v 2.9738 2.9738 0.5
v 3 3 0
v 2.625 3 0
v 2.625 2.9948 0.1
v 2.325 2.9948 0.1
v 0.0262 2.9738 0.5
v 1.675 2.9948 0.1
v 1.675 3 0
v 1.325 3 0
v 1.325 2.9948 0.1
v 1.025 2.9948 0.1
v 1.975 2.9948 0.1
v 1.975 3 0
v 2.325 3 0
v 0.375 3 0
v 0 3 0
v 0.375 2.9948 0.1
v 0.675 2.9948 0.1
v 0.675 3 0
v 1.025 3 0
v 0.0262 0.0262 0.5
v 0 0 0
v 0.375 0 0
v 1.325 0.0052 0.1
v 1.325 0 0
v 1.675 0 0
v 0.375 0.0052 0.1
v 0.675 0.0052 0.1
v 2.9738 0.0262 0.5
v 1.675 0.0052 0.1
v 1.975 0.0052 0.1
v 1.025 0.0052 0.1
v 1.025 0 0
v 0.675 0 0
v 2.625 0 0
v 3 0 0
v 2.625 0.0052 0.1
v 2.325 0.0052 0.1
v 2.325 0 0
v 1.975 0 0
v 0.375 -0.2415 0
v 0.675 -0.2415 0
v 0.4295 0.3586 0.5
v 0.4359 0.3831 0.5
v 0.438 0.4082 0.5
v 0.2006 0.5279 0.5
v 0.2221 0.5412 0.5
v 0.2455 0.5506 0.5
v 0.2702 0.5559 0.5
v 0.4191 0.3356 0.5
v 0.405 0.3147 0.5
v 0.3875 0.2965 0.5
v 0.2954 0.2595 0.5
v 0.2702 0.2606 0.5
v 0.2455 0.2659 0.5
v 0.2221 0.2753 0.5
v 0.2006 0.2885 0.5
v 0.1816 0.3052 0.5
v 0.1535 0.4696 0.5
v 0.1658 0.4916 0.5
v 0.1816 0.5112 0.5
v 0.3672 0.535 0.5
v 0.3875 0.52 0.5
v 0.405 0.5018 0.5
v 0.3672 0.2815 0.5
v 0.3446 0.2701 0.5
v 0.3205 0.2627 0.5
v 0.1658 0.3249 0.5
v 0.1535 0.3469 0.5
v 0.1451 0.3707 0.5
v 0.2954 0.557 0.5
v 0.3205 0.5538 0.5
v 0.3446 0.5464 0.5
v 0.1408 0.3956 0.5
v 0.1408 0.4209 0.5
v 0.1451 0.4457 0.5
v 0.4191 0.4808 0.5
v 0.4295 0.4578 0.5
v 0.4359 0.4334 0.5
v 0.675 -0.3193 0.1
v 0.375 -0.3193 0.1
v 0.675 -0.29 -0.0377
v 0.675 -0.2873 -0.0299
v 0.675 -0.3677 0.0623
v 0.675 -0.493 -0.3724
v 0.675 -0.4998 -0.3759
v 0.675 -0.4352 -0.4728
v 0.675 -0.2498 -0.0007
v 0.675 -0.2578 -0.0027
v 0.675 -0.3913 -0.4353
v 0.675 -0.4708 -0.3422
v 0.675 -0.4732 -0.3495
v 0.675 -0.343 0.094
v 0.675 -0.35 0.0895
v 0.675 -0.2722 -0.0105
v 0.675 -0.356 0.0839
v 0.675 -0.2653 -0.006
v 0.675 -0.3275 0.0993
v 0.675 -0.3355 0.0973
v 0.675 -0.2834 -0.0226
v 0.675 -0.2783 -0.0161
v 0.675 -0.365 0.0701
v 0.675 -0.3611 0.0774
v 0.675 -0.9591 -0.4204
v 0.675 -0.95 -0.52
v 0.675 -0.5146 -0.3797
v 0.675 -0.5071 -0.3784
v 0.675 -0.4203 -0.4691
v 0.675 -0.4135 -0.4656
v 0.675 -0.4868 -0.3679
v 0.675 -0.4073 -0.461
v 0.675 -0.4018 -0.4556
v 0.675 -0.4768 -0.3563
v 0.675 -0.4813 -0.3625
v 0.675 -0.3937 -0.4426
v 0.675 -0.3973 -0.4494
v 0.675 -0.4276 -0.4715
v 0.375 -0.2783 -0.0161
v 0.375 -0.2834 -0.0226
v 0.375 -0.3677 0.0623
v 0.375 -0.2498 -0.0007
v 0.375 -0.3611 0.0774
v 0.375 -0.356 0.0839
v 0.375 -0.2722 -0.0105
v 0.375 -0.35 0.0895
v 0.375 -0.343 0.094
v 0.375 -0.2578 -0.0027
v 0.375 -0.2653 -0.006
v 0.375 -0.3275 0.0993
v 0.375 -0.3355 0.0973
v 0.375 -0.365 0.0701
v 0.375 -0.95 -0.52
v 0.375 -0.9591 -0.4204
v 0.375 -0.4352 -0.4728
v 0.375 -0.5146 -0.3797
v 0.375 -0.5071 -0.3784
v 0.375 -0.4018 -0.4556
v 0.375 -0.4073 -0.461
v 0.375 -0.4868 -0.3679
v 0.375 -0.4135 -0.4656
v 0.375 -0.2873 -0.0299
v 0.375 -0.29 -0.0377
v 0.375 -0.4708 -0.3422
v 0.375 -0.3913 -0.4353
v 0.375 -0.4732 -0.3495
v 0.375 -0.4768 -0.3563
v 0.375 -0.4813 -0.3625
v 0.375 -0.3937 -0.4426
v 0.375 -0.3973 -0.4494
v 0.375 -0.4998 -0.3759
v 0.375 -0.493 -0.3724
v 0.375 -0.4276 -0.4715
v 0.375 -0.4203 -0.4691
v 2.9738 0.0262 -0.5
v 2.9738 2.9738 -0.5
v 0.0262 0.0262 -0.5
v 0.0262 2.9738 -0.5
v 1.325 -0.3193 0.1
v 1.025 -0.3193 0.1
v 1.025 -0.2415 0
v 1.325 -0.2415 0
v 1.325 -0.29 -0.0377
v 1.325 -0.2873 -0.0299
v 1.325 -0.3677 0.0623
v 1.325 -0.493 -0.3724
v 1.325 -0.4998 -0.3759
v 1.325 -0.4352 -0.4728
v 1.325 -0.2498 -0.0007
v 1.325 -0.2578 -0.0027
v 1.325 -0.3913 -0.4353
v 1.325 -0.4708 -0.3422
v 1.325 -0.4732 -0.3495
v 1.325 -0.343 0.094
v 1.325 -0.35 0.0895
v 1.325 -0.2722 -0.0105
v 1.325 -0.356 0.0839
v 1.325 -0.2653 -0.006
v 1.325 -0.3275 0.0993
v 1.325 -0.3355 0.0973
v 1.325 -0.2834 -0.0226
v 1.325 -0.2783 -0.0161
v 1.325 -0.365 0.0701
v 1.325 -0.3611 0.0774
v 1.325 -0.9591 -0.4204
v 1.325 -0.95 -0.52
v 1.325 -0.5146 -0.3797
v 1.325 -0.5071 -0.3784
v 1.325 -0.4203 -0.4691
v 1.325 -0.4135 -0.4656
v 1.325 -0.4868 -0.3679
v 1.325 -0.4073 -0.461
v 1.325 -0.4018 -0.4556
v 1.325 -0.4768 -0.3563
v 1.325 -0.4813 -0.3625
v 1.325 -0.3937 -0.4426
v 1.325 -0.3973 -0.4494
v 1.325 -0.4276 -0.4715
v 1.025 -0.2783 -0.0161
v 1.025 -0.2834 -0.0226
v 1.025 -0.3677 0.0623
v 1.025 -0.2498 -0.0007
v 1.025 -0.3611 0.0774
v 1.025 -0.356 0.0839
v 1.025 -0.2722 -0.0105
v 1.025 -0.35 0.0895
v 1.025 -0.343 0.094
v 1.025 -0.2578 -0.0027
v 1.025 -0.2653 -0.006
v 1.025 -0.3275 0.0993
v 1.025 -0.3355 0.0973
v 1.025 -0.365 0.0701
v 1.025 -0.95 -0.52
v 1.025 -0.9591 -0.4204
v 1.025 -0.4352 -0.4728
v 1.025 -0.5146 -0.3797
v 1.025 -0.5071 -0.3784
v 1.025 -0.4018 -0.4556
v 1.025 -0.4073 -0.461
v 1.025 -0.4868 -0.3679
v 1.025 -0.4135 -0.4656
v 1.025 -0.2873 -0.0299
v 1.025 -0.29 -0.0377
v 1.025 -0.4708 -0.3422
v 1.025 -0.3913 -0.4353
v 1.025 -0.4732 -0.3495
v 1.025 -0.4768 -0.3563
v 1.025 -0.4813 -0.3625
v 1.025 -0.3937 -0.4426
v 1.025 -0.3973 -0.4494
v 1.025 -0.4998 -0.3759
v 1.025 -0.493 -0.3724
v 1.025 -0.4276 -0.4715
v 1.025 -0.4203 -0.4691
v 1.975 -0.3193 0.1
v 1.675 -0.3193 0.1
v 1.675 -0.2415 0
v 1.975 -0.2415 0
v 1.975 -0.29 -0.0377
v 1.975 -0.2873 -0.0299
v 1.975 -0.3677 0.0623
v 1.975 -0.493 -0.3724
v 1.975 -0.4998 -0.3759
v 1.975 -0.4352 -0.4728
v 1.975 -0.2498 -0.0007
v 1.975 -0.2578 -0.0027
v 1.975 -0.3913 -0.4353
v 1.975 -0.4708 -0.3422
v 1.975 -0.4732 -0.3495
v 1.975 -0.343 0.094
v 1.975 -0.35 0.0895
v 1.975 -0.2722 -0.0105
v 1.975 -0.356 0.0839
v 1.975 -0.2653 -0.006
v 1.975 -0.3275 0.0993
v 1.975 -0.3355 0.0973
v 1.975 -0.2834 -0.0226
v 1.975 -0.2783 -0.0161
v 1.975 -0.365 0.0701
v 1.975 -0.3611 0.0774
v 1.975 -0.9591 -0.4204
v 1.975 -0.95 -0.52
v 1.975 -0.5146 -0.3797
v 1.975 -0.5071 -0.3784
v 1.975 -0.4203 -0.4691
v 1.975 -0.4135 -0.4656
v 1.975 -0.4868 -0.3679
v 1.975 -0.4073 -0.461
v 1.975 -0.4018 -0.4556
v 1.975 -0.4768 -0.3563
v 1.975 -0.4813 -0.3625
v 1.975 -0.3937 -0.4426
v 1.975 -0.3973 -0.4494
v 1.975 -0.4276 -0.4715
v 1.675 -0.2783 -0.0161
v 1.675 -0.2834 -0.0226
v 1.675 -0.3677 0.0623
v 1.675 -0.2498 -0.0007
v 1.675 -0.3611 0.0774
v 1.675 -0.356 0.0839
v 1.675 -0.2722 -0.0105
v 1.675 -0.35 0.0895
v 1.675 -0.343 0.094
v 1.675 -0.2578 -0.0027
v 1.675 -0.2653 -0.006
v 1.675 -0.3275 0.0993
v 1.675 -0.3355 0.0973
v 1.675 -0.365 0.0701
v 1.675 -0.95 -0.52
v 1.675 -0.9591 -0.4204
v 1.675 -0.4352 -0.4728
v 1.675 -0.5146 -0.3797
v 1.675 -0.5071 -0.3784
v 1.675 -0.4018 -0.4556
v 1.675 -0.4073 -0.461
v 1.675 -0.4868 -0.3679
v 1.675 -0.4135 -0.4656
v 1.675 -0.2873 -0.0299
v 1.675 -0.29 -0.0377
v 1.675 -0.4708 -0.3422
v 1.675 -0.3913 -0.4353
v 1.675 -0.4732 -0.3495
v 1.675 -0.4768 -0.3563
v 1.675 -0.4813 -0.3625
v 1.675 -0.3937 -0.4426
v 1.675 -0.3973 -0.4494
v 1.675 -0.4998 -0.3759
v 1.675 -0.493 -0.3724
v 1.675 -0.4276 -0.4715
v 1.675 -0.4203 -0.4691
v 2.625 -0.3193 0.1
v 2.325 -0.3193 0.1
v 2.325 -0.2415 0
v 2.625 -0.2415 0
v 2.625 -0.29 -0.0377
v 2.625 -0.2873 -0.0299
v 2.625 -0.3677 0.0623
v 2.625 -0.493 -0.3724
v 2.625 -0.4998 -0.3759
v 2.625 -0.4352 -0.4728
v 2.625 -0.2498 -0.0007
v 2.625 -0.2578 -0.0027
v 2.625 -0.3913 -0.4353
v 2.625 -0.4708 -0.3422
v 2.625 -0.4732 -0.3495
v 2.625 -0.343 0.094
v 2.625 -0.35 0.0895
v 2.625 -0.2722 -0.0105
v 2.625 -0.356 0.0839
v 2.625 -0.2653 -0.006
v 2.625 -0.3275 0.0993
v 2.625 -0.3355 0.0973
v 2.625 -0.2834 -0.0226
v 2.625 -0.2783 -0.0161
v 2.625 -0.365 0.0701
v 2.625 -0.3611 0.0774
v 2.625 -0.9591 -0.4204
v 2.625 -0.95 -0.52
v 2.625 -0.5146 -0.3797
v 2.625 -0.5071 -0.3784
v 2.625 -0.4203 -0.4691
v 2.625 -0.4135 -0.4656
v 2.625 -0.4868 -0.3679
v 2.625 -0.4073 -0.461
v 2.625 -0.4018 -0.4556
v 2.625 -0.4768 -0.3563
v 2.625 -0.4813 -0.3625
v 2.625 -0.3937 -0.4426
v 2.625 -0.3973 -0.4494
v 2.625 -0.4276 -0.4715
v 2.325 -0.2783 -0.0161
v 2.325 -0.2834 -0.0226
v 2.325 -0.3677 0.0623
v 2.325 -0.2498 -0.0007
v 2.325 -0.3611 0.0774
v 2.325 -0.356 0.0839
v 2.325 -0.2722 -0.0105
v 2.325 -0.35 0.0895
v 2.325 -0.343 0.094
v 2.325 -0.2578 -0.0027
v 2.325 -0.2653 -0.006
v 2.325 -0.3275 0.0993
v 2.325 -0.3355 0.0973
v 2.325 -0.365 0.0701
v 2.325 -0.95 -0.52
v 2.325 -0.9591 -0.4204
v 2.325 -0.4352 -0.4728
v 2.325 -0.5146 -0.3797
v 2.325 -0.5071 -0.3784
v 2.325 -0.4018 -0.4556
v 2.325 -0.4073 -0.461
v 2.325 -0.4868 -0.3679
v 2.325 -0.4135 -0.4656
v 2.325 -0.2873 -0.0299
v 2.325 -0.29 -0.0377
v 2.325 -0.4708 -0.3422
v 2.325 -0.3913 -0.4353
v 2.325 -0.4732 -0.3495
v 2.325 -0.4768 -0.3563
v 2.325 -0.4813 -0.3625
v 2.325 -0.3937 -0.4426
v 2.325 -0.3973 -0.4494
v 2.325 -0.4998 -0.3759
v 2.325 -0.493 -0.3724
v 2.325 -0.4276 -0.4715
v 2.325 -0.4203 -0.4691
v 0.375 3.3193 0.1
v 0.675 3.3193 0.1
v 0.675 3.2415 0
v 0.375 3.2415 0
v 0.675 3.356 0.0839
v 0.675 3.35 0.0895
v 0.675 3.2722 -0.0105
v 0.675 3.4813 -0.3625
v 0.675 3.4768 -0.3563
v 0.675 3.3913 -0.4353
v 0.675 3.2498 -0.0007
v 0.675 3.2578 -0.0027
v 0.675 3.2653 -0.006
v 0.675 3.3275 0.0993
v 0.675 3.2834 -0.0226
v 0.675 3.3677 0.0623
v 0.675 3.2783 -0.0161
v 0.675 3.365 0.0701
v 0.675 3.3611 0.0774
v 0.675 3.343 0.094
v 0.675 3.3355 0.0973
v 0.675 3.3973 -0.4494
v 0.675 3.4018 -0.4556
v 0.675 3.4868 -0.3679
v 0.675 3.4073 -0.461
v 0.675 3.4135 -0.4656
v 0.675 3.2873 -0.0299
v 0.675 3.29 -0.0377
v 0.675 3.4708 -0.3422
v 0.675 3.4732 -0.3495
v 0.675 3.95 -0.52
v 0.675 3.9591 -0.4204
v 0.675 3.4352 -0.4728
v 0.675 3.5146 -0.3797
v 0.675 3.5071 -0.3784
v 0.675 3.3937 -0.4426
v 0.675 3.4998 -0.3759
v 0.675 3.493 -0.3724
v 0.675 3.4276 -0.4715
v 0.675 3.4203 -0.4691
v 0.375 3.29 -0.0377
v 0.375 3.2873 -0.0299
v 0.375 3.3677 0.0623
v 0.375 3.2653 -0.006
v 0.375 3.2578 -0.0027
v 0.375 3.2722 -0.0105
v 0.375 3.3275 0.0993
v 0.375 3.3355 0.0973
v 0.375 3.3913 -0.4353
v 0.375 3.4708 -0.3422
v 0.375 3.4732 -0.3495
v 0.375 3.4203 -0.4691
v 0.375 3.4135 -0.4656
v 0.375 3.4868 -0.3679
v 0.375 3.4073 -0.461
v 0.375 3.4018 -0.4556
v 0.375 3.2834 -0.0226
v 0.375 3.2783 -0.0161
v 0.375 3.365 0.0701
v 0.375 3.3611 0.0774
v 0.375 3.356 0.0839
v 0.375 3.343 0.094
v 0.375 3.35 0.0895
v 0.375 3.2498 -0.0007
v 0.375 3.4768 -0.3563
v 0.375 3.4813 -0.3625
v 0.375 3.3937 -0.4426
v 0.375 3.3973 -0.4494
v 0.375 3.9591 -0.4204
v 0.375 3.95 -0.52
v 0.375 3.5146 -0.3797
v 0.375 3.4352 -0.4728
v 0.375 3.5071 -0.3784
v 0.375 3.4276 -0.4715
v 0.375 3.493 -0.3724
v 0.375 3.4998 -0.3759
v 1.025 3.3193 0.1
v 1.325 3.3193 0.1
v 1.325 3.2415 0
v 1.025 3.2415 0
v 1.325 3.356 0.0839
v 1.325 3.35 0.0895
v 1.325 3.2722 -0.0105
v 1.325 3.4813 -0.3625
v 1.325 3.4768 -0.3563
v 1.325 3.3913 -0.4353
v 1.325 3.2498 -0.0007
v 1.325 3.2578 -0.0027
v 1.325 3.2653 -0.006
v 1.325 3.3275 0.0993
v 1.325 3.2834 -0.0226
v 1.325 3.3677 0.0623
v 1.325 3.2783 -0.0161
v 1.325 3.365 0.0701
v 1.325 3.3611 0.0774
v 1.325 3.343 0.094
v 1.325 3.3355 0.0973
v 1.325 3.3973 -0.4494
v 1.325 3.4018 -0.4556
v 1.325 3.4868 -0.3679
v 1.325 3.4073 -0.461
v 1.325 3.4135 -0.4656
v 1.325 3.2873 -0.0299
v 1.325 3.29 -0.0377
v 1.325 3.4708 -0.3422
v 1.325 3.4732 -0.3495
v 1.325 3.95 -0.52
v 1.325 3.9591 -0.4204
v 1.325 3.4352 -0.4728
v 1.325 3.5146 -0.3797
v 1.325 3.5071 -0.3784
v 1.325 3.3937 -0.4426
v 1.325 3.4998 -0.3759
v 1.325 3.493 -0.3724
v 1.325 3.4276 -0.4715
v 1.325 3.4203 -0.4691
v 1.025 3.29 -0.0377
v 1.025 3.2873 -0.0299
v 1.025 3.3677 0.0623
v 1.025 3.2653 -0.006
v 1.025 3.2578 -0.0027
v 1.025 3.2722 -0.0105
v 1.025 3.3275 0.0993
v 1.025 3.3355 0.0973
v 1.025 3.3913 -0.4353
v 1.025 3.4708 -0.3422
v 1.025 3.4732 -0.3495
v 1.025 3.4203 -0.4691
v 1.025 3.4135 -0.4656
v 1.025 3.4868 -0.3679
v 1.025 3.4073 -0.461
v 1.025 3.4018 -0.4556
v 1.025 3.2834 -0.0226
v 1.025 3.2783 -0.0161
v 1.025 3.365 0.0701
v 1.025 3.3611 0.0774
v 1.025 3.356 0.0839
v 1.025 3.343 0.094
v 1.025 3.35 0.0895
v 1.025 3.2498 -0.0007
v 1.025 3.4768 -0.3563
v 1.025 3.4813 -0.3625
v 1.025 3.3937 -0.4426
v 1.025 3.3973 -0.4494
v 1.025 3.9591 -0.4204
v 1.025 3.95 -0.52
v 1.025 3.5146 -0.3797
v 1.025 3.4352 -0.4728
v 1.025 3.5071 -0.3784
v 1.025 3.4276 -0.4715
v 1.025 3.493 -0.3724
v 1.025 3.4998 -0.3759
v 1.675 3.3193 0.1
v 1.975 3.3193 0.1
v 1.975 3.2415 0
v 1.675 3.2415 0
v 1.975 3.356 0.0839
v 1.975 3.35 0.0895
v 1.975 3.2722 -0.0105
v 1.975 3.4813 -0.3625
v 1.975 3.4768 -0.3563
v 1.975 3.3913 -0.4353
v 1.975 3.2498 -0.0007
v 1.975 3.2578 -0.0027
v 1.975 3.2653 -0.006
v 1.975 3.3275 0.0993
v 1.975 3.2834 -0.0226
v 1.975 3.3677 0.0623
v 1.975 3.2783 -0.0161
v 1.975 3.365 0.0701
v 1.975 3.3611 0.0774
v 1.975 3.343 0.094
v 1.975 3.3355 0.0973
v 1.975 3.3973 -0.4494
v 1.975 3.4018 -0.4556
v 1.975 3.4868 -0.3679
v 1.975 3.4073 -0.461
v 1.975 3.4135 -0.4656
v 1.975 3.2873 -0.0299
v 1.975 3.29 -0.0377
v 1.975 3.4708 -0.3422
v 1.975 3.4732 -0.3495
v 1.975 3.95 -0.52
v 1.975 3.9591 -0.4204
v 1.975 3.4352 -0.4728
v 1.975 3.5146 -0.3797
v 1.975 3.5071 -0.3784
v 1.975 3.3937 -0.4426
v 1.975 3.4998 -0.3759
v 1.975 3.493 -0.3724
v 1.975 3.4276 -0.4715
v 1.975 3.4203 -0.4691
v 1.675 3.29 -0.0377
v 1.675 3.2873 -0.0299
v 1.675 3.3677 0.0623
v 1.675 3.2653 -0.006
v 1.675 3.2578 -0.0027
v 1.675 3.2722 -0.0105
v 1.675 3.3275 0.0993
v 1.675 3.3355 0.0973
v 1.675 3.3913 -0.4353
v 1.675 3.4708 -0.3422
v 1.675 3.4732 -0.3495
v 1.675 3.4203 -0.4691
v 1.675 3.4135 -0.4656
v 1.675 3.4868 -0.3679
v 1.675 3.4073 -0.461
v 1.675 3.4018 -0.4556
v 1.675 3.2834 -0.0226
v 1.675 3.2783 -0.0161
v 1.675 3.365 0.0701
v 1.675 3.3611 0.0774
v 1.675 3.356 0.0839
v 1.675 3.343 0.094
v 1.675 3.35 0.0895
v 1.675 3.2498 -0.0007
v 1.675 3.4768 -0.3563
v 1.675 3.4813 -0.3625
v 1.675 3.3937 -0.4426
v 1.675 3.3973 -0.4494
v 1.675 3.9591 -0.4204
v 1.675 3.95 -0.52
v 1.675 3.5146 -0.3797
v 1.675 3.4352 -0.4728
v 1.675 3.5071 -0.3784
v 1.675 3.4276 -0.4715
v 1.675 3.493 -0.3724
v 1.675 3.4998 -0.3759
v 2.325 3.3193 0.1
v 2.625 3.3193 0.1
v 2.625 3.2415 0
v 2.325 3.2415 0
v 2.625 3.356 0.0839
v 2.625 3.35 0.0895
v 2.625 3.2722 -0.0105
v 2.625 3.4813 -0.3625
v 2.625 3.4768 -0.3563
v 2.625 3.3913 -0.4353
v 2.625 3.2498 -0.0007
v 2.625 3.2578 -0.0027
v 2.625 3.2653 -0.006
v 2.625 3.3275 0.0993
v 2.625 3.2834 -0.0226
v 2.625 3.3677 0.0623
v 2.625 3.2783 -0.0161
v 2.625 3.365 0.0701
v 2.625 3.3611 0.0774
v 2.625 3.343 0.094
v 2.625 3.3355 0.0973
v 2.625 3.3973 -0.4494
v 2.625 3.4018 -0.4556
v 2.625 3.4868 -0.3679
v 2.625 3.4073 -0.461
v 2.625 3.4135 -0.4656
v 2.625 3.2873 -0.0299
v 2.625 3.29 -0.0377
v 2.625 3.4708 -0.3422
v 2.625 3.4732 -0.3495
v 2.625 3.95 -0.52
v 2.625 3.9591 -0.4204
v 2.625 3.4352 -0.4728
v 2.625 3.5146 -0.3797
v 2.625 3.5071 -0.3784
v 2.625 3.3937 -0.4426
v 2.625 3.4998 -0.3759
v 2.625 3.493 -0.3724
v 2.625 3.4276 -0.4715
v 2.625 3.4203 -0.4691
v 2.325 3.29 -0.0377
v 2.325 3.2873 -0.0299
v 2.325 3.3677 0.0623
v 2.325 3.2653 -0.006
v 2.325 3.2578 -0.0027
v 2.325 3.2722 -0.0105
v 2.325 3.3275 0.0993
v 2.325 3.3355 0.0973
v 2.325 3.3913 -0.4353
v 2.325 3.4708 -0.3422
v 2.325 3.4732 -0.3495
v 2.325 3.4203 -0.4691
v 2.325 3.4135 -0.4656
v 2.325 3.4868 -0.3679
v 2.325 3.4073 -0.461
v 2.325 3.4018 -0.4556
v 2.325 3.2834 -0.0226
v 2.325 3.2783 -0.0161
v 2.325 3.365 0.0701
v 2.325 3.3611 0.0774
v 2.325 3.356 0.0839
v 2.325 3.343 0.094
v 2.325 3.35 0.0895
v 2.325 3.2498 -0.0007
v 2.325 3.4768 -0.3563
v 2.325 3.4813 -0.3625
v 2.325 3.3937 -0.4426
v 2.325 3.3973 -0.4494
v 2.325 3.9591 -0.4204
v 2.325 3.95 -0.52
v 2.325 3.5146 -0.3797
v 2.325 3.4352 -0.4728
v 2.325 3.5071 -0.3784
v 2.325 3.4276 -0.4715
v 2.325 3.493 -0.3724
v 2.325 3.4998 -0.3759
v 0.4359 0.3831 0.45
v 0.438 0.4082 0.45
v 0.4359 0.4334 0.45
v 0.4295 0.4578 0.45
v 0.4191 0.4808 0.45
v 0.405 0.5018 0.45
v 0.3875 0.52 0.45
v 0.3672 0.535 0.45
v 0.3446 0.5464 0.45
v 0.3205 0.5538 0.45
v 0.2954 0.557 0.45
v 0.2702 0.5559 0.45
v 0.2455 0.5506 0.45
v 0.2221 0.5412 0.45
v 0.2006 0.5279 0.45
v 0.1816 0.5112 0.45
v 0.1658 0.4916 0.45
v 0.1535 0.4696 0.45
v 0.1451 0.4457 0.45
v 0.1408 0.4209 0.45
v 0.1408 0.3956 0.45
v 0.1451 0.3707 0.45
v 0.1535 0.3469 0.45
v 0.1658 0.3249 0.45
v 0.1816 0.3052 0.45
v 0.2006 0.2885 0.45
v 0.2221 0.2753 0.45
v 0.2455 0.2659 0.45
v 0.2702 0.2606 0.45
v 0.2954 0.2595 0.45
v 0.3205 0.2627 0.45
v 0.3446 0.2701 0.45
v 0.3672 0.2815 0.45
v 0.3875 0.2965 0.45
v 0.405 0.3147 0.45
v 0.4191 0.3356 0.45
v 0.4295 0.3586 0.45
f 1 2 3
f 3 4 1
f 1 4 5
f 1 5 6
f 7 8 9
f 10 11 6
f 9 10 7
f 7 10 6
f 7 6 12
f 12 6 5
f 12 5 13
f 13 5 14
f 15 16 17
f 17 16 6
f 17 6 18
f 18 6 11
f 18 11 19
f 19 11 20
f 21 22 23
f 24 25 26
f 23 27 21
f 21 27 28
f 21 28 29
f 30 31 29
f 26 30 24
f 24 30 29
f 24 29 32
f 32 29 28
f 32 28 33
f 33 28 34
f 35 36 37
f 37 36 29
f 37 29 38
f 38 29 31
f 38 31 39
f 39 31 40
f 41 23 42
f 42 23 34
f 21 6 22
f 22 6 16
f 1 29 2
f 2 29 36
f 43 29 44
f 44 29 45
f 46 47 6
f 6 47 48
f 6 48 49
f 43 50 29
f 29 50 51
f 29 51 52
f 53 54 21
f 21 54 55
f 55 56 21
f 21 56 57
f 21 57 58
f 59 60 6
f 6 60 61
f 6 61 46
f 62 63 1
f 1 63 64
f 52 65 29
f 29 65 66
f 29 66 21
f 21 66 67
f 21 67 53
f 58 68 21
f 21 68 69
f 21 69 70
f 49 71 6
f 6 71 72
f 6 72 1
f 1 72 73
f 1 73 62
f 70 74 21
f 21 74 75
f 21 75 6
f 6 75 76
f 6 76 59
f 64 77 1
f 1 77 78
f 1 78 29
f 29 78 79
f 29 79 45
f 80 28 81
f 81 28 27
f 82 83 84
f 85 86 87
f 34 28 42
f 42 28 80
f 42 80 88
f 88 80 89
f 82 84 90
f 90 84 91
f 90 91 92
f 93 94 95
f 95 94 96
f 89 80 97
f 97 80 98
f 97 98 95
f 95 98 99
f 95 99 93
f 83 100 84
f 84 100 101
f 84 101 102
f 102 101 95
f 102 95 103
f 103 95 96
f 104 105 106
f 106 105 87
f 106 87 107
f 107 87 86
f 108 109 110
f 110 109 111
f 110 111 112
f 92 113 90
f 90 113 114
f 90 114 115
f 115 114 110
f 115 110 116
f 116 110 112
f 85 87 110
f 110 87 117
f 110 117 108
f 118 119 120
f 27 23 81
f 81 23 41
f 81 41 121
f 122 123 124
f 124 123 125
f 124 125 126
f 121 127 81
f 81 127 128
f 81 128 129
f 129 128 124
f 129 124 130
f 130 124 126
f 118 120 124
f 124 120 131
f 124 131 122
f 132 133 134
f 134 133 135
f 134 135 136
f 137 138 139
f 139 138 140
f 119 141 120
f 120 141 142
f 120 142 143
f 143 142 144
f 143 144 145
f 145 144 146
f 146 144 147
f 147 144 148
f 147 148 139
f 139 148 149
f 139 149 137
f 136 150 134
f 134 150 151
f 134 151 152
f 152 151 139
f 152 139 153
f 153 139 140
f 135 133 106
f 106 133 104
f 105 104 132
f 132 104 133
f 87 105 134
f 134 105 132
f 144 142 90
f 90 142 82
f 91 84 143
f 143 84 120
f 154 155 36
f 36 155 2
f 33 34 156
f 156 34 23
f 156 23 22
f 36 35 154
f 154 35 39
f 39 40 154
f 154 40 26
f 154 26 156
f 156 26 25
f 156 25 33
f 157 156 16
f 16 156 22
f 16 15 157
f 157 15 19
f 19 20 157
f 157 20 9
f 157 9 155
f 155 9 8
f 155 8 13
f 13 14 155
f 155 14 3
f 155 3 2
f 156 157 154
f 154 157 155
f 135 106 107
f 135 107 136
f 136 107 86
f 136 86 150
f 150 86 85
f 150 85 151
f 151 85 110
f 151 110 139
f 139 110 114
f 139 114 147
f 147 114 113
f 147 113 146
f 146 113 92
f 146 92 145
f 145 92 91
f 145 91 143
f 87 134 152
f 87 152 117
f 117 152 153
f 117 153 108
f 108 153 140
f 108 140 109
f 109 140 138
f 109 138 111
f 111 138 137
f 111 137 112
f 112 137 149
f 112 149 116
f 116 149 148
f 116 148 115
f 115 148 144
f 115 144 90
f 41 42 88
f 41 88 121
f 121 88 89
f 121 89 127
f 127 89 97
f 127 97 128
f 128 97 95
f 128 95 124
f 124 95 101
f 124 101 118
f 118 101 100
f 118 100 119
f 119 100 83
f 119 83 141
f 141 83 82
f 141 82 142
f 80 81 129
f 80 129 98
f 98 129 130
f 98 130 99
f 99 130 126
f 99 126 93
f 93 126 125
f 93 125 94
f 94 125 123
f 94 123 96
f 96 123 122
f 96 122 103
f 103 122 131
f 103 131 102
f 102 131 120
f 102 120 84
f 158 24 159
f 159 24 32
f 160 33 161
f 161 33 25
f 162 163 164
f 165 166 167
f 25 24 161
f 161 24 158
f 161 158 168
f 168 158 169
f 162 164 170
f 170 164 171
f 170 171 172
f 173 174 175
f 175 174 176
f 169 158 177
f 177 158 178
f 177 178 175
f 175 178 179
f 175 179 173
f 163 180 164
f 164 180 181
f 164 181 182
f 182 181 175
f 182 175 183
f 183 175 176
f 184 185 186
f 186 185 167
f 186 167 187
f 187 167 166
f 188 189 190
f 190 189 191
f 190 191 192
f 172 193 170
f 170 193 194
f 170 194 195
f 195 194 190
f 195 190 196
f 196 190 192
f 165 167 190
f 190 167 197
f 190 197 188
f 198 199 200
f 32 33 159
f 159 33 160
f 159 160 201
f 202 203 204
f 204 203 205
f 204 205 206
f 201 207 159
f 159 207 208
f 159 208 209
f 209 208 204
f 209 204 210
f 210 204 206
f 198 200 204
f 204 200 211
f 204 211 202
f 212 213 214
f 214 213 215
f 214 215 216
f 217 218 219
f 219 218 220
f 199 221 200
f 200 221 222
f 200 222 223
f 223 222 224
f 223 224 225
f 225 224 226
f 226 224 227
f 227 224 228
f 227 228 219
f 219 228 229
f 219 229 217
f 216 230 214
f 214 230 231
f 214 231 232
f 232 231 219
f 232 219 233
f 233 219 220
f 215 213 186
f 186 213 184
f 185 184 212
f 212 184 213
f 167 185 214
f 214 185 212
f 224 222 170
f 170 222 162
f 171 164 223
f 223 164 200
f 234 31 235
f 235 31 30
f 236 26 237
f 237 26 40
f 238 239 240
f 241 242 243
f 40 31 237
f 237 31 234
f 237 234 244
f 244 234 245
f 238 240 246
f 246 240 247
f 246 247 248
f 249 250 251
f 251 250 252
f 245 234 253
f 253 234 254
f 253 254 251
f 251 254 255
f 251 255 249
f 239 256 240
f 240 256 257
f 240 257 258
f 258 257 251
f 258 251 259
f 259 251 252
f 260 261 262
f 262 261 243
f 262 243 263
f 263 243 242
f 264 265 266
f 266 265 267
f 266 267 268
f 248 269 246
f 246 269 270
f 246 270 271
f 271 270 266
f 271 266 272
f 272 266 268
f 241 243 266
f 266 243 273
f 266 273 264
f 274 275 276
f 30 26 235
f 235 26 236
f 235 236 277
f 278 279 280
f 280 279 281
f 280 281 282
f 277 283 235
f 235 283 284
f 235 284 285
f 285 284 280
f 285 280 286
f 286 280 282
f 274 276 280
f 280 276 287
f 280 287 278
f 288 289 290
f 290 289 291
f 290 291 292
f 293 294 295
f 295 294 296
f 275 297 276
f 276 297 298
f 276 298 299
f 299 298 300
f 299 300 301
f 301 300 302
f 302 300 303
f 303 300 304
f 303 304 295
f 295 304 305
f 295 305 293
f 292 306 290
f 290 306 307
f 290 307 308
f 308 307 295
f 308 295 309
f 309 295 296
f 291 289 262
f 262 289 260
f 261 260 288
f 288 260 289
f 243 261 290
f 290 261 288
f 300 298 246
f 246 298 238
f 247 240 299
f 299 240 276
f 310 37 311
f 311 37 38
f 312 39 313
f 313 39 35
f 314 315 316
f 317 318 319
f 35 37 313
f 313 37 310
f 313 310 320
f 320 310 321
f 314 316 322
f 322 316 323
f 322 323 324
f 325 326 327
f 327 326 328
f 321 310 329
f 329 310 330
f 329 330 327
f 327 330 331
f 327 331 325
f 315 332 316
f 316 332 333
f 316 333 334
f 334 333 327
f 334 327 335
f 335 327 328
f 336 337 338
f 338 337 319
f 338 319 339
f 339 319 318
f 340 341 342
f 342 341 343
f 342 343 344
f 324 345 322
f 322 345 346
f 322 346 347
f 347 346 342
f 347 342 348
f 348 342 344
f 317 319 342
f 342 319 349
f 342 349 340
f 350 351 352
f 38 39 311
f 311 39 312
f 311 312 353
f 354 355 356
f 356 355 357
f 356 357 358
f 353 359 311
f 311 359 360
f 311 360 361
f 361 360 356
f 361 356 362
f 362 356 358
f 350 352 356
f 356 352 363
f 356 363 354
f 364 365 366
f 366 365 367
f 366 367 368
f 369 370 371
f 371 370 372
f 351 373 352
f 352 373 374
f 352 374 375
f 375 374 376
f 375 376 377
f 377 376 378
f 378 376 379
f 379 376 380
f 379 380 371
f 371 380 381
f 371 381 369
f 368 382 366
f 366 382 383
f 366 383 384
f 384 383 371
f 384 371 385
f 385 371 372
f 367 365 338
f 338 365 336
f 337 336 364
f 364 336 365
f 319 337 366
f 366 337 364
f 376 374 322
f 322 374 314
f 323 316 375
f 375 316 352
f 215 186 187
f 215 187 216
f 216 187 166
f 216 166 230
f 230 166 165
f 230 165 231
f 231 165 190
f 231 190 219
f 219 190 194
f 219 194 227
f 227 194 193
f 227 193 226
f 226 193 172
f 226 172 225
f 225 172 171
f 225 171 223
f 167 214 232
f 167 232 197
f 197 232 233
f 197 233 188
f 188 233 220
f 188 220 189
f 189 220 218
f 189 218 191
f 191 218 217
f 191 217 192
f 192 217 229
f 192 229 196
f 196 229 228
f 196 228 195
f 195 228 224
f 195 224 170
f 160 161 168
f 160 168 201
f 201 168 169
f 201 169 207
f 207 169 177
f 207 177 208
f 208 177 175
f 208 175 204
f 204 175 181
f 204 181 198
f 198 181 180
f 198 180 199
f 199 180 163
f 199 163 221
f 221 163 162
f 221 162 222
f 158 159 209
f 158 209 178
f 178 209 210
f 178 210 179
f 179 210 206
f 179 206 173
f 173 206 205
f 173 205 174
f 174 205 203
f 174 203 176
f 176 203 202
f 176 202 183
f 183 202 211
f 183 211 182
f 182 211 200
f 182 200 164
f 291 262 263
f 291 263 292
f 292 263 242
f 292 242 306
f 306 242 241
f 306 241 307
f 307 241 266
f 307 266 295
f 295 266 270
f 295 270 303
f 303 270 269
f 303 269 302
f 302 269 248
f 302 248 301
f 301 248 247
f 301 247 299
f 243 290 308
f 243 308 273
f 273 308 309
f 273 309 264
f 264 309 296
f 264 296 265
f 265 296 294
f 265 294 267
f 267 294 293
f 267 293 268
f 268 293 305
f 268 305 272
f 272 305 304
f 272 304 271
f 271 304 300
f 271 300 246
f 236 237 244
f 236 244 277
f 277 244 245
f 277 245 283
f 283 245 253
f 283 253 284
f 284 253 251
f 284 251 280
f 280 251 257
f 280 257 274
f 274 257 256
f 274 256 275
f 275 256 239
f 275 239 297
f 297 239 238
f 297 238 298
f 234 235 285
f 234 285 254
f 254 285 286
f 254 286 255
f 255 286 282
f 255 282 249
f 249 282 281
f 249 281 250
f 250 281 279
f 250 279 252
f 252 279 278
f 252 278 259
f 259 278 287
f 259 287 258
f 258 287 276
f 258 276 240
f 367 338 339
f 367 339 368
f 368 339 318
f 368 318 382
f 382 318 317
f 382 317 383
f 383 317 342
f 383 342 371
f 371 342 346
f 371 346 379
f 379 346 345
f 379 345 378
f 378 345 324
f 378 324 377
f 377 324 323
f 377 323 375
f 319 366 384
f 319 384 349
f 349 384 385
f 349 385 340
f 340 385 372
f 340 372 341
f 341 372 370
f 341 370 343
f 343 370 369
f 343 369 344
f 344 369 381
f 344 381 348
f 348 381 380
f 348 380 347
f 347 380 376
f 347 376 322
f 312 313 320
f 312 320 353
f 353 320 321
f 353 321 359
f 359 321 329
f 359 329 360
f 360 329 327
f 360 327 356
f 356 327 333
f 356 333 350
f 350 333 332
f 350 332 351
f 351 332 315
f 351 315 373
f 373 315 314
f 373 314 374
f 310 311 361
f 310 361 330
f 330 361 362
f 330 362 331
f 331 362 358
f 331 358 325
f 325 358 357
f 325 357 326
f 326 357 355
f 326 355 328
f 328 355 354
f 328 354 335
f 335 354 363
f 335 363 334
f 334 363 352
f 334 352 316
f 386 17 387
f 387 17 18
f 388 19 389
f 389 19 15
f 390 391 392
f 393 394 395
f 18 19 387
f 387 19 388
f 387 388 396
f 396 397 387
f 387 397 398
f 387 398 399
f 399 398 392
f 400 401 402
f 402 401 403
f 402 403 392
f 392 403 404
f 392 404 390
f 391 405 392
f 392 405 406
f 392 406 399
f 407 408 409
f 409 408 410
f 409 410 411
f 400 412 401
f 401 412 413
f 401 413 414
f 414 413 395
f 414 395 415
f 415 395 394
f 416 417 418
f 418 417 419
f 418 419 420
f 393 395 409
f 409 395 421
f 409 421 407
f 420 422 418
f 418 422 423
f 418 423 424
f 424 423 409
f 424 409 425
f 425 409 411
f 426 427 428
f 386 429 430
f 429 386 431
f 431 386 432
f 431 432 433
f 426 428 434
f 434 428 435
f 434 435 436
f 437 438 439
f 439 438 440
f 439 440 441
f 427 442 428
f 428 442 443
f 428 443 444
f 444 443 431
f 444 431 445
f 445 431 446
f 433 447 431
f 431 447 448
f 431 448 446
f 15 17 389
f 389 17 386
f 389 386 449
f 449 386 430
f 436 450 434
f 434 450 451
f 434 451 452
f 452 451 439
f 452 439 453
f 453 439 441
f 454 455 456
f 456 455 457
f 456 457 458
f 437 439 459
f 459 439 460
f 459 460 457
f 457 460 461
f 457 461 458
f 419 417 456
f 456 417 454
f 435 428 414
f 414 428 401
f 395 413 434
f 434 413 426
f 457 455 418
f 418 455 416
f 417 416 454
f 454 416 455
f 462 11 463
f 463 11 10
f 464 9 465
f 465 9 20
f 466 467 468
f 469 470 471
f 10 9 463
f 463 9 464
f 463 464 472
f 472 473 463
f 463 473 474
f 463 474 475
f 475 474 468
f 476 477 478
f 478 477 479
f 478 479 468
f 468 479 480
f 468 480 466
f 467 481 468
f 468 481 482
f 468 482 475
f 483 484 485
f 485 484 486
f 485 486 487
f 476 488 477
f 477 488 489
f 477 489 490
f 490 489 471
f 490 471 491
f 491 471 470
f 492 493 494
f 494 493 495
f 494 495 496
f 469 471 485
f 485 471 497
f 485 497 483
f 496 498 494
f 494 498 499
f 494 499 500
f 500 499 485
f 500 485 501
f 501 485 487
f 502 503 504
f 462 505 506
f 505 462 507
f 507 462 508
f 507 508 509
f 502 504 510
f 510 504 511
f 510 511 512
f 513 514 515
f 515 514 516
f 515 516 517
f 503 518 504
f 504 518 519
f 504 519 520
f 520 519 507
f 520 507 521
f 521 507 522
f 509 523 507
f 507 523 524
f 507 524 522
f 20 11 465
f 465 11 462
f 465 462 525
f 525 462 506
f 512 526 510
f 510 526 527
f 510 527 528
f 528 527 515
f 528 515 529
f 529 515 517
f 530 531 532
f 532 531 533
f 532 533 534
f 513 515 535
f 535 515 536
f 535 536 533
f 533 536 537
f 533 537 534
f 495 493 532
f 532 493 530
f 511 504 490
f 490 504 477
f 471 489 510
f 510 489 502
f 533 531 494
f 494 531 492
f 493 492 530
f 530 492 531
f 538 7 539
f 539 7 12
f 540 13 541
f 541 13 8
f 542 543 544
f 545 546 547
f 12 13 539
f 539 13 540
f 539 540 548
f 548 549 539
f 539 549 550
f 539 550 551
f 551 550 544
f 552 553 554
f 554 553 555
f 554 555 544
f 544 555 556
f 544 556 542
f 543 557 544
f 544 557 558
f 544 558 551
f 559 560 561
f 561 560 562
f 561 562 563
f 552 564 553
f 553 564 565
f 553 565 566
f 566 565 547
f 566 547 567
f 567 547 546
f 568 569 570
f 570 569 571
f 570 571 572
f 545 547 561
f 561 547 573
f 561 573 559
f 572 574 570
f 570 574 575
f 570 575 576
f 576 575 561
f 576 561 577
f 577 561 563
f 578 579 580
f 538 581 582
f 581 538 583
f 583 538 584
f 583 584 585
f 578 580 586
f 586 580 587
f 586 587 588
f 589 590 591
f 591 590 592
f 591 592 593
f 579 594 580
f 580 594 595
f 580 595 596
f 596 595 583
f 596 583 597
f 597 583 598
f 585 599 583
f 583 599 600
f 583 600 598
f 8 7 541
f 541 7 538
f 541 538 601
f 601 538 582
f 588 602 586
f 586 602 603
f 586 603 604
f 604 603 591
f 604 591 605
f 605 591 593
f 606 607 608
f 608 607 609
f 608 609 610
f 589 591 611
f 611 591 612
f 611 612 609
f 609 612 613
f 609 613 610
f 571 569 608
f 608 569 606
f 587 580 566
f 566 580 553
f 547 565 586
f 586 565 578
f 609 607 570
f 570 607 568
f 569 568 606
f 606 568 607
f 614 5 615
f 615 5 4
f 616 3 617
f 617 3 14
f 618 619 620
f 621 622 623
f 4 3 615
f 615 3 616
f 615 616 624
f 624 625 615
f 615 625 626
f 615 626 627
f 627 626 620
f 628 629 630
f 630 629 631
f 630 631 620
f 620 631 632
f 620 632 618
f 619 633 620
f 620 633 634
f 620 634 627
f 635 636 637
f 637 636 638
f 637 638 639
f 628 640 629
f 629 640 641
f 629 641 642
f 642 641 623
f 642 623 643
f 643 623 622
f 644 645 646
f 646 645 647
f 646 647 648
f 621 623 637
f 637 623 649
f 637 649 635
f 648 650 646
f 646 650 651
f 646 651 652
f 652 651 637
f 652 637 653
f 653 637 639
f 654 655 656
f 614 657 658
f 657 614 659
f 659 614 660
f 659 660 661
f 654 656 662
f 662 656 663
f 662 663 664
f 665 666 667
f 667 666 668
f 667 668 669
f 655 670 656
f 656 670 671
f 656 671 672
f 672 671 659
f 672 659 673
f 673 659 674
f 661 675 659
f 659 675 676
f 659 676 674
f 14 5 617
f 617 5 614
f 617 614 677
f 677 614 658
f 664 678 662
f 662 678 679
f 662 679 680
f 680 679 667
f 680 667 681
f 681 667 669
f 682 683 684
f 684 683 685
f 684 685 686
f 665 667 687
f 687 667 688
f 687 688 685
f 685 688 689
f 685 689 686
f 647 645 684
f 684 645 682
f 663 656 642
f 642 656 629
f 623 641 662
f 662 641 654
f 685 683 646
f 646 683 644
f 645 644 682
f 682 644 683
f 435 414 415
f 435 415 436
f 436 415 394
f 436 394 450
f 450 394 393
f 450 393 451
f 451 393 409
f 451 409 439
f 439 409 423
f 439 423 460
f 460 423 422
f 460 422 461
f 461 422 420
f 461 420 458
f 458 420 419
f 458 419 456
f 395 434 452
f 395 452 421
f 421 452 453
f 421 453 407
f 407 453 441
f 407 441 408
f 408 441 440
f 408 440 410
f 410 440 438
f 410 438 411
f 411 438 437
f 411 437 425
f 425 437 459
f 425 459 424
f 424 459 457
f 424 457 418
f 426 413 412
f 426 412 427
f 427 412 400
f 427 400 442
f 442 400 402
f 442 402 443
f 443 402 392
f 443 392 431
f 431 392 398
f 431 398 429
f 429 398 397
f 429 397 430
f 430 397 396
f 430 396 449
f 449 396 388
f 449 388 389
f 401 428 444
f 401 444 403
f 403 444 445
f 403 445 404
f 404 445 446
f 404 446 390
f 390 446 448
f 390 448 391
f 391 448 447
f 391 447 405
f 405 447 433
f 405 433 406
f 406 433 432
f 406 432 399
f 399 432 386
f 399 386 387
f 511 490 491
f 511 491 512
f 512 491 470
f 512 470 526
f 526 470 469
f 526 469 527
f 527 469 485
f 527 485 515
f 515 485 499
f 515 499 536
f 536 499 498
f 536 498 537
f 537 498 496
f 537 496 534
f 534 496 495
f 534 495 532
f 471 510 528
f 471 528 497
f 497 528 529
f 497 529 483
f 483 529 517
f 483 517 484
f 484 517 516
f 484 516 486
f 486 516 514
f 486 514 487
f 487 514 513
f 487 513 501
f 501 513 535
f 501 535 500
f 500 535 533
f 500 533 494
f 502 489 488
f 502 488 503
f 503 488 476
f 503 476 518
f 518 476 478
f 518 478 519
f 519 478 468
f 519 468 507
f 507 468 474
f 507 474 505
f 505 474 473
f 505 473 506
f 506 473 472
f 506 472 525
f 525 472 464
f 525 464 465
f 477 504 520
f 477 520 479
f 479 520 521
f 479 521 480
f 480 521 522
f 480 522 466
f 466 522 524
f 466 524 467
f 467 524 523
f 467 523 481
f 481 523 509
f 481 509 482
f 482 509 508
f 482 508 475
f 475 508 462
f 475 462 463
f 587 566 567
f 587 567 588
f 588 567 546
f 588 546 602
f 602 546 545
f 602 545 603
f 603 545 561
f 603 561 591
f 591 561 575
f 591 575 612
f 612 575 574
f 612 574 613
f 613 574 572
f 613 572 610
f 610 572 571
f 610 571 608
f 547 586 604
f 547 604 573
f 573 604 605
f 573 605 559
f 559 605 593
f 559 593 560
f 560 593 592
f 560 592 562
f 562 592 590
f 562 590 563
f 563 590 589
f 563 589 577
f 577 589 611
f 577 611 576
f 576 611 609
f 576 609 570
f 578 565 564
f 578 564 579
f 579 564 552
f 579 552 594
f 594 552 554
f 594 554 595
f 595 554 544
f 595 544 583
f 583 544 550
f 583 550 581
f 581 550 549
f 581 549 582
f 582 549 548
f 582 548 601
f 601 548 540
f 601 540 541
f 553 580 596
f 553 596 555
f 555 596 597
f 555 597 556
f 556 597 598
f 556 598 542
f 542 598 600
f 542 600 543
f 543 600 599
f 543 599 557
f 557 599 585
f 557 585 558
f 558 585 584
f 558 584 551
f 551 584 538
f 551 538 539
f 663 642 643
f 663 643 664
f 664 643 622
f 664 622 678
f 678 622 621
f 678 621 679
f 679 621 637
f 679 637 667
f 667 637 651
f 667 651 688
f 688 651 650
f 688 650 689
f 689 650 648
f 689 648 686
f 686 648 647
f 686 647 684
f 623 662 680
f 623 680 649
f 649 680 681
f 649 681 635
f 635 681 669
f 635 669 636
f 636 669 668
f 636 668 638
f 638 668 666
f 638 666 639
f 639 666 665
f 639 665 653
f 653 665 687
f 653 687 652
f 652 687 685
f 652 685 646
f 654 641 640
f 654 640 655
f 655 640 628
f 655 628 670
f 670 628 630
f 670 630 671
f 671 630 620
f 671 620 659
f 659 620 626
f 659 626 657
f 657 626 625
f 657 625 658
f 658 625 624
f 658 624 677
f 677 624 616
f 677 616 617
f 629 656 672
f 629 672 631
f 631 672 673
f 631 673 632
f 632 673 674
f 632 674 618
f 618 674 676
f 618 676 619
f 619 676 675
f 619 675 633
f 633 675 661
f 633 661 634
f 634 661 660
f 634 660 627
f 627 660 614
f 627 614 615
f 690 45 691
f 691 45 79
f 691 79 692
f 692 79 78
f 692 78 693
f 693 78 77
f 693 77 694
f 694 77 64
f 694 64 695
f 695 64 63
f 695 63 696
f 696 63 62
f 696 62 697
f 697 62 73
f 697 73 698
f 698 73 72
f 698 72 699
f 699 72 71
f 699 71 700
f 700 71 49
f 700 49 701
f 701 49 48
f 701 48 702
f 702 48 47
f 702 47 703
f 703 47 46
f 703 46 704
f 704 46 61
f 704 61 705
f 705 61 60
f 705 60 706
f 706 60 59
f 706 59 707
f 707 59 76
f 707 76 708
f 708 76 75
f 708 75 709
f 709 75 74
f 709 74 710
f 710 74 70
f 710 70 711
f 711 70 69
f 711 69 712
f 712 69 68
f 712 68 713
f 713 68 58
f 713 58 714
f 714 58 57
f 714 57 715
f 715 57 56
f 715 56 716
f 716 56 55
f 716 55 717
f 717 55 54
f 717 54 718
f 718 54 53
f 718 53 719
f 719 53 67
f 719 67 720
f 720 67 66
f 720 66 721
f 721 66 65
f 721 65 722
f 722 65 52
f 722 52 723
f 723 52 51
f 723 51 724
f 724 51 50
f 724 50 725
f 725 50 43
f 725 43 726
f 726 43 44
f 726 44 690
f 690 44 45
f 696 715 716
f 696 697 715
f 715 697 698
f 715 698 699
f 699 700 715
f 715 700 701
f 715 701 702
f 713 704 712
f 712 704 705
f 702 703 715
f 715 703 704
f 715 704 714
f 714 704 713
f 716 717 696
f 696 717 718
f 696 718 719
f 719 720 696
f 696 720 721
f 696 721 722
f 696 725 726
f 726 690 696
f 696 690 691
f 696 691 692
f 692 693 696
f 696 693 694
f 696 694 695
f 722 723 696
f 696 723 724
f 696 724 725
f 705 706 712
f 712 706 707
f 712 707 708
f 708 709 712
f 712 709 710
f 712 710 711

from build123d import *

# Parameters (mm, degrees)
SKETCH1_W              = 3
SKETCH1_H              = 3
BOSS_EXTRUDE1_DEPTH    = 0.5
BOSS_EXTRUDE1_TAPER    = 3
SKETCH2_W              = 3
SKETCH2_H              = 3
BOSS_EXTRUDE2_DEPTH    = 0.5
BOSS_EXTRUDE2_TAPER    = 3
EXTRUDE_THIN1_DEPTH    = 0.15
FILLET1_R              = 0.05
LPATTERN1_COUNT        = 4
LPATTERN1_PITCH        = 0.65
FILLET1_OF_LPATTERN1_R = 0.05
MIRROR1_START          = 0.375
MIRROR1_DEPTH          = 0.3
MIRROR1_START_2        = 1.025
MIRROR1_2_DEPTH        = 0.3
MIRROR1_START_3        = 1.675
MIRROR1_3_DEPTH        = 0.3
MIRROR1_START_4        = 2.325
MIRROR1_4_DEPTH        = 0.3
SKETCH4_R              = 0.14887785
CUT_EXTRUDE1_DEPTH     = 0.05


# Read off the part's stored shape, not the designer's step: Mirror1
with BuildPart() as part:
    # Sketch1 → Boss-Extrude1 (new body)
    with BuildSketch(Plane.XY):
        with Locations((1.5, 1.5)):
            Rectangle(SKETCH1_W, SKETCH1_H)
    extrude(amount=BOSS_EXTRUDE1_DEPTH, taper=BOSS_EXTRUDE1_TAPER)



with BuildPart() as body_2:
    # Sketch2 → Boss-Extrude2 (new body)
    with BuildSketch(Plane(origin=(0, 0, 0), x_dir=(-1, 0, 0), z_dir=(0, 0, -1))):
        with Locations((-1.5, 1.5)):
            Rectangle(SKETCH2_W, SKETCH2_H)
    extrude(amount=BOSS_EXTRUDE2_DEPTH, taper=BOSS_EXTRUDE2_TAPER)


with BuildPart() as part_1:
    add(part.part)

    add(body_2.part)  # Extrude-Thin1 merges body 2
    # Sketch3 → Extrude-Thin1 (add, symmetric)
    with BuildSketch(Plane(origin=(0.525, 0, 0), x_dir=(0, 0, -1), z_dir=(1, 0, 0))):
        Polygon((0, 0.090955067), (0, -0.280409021), (0.469567974, -0.4), (0.52, -0.95), (0.420417762, -0.959131153), (0.376435704, -0.479473015), (-0.1, -0.358132942), (-0.1, 0.090955067), align=None)
    extrude_thin1 = extrude(amount=EXTRUDE_THIN1_DEPTH, both=True)

    # Fillet1
    fillet1_edges = [part_1.edges().sort_by_distance(p)[0] for p in [
        (0.525, -0.280409021, 0),
        (0.525, -0.479473015, -0.376435704),
        (0.525, -0.4, -0.469567974),
        (0.525, -0.358132942, 0.1),
    ]]
    fillet(fillet1_edges, radius=FILLET1_R)

    # LPattern1: Extrude-Thin1 ×4
    with Locations(*[(i * LPATTERN1_PITCH, 0, 0) for i in range(1, LPATTERN1_COUNT)]):
        add(extrude_thin1)

    # Fillet1 of LPattern1
    fillet1_of_lpattern1_edges = [part_1.edges().sort_by_distance(p)[0] for p in [
        (1.175, -0.280409021, 0),
        (1.175, -0.479473015, -0.376435704),
        (1.175, -0.4, -0.469567974),
        (1.175, -0.358132942, 0.1),
        (1.825, -0.280409021, 0),
        (1.825, -0.479473015, -0.376435704),
        (1.825, -0.4, -0.469567974),
        (1.825, -0.358132942, 0.1),
        (2.475, -0.280409021, 0),
        (2.475, -0.479473015, -0.376435704),
        (2.475, -0.4, -0.469567974),
        (2.475, -0.358132942, 0.1),
    ]]
    fillet(fillet1_of_lpattern1_edges, radius=FILLET1_OF_LPATTERN1_R)

    # Mirror1 outline → Mirror1 (add)
    with BuildSketch(Plane.YZ.offset(MIRROR1_START)):
        with BuildLine():
            Line((3, 0), (3.241547061, 0))
            ThreePointArc((3.241547061, 0), (3.272230842, -0.010522088), (3.290000326, -0.037659777))
            Line((3.290000326, -0.037659777), (3.391283242, -0.435342062))
            ThreePointArc((3.391283242, -0.435342062), (3.40728051, -0.461036142), (3.435170931, -0.472792958))
            Line((3.435170931, -0.472792958), (3.95, -0.52))
            Line((3.95, -0.52), (3.959131153, -0.420417762))
            Line((3.959131153, -0.420417762), (3.514643946, -0.379660689))
            ThreePointArc((3.514643946, -0.379660689), (3.486753524, -0.367903873), (3.470756257, -0.342209793))
            Line((3.470756257, -0.342209793), (3.367724246, 0.062340223))
            ThreePointArc((3.367724246, 0.062340223), (3.349954762, 0.089477913), (3.319270981, 0.1))
            Line((3.319270981, 0.1), (2.994759222, 0.1))
            Line((2.994759222, 0.1), (3, 0))
        make_face()
    extrude(amount=MIRROR1_DEPTH)

    # Mirror1 2 outline → Mirror1 2 (add)
    with BuildSketch(Plane.YZ.offset(MIRROR1_START_2)):
        with BuildLine():
            Line((3, 0), (3.241547061, 0))
            ThreePointArc((3.241547061, 0), (3.272230842, -0.010522088), (3.290000326, -0.037659777))
            Line((3.290000326, -0.037659777), (3.391283242, -0.435342062))
            ThreePointArc((3.391283242, -0.435342062), (3.40728051, -0.461036142), (3.435170931, -0.472792958))
            Line((3.435170931, -0.472792958), (3.95, -0.52))
            Line((3.95, -0.52), (3.959131153, -0.420417762))
            Line((3.959131153, -0.420417762), (3.514643946, -0.379660689))
            ThreePointArc((3.514643946, -0.379660689), (3.486753524, -0.367903873), (3.470756257, -0.342209793))
            Line((3.470756257, -0.342209793), (3.367724246, 0.062340223))
            ThreePointArc((3.367724246, 0.062340223), (3.349954762, 0.089477913), (3.319270981, 0.1))
            Line((3.319270981, 0.1), (2.994759222, 0.1))
            Line((2.994759222, 0.1), (3, 0))
        make_face()
    extrude(amount=MIRROR1_2_DEPTH)

    # Mirror1 3 outline → Mirror1 3 (add)
    with BuildSketch(Plane.YZ.offset(MIRROR1_START_3)):
        with BuildLine():
            Line((3, 0), (3.241547061, 0))
            ThreePointArc((3.241547061, 0), (3.272230842, -0.010522088), (3.290000326, -0.037659777))
            Line((3.290000326, -0.037659777), (3.391283242, -0.435342062))
            ThreePointArc((3.391283242, -0.435342062), (3.40728051, -0.461036142), (3.435170931, -0.472792958))
            Line((3.435170931, -0.472792958), (3.95, -0.52))
            Line((3.95, -0.52), (3.959131153, -0.420417762))
            Line((3.959131153, -0.420417762), (3.514643946, -0.379660689))
            ThreePointArc((3.514643946, -0.379660689), (3.486753524, -0.367903873), (3.470756257, -0.342209793))
            Line((3.470756257, -0.342209793), (3.367724246, 0.062340223))
            ThreePointArc((3.367724246, 0.062340223), (3.349954762, 0.089477913), (3.319270981, 0.1))
            Line((3.319270981, 0.1), (2.994759222, 0.1))
            Line((2.994759222, 0.1), (3, 0))
        make_face()
    extrude(amount=MIRROR1_3_DEPTH)

    # Mirror1 4 outline → Mirror1 4 (add)
    with BuildSketch(Plane.YZ.offset(MIRROR1_START_4)):
        with BuildLine():
            Line((3, 0), (3.241547061, 0))
            ThreePointArc((3.241547061, 0), (3.272230842, -0.010522088), (3.290000326, -0.037659777))
            Line((3.290000326, -0.037659777), (3.391283242, -0.435342062))
            ThreePointArc((3.391283242, -0.435342062), (3.40728051, -0.461036142), (3.435170931, -0.472792958))
            Line((3.435170931, -0.472792958), (3.95, -0.52))
            Line((3.95, -0.52), (3.959131153, -0.420417762))
            Line((3.959131153, -0.420417762), (3.514643946, -0.379660689))
            ThreePointArc((3.514643946, -0.379660689), (3.486753524, -0.367903873), (3.470756257, -0.342209793))
            Line((3.470756257, -0.342209793), (3.367724246, 0.062340223))
            ThreePointArc((3.367724246, 0.062340223), (3.349954762, 0.089477913), (3.319270981, 0.1))
            Line((3.319270981, 0.1), (2.994759222, 0.1))
            Line((2.994759222, 0.1), (3, 0))
        make_face()
    extrude(amount=MIRROR1_4_DEPTH)

    # Sketch4 → Cut-Extrude1 (cut)
    with BuildSketch(Plane.XY.offset(0.5)):
        with Locations((0.289126817, 0.408229097)):
            Circle(SKETCH4_R)
    extrude(amount=-CUT_EXTRUDE1_DEPTH, mode=Mode.SUBTRACT)


solid = part_1.part
